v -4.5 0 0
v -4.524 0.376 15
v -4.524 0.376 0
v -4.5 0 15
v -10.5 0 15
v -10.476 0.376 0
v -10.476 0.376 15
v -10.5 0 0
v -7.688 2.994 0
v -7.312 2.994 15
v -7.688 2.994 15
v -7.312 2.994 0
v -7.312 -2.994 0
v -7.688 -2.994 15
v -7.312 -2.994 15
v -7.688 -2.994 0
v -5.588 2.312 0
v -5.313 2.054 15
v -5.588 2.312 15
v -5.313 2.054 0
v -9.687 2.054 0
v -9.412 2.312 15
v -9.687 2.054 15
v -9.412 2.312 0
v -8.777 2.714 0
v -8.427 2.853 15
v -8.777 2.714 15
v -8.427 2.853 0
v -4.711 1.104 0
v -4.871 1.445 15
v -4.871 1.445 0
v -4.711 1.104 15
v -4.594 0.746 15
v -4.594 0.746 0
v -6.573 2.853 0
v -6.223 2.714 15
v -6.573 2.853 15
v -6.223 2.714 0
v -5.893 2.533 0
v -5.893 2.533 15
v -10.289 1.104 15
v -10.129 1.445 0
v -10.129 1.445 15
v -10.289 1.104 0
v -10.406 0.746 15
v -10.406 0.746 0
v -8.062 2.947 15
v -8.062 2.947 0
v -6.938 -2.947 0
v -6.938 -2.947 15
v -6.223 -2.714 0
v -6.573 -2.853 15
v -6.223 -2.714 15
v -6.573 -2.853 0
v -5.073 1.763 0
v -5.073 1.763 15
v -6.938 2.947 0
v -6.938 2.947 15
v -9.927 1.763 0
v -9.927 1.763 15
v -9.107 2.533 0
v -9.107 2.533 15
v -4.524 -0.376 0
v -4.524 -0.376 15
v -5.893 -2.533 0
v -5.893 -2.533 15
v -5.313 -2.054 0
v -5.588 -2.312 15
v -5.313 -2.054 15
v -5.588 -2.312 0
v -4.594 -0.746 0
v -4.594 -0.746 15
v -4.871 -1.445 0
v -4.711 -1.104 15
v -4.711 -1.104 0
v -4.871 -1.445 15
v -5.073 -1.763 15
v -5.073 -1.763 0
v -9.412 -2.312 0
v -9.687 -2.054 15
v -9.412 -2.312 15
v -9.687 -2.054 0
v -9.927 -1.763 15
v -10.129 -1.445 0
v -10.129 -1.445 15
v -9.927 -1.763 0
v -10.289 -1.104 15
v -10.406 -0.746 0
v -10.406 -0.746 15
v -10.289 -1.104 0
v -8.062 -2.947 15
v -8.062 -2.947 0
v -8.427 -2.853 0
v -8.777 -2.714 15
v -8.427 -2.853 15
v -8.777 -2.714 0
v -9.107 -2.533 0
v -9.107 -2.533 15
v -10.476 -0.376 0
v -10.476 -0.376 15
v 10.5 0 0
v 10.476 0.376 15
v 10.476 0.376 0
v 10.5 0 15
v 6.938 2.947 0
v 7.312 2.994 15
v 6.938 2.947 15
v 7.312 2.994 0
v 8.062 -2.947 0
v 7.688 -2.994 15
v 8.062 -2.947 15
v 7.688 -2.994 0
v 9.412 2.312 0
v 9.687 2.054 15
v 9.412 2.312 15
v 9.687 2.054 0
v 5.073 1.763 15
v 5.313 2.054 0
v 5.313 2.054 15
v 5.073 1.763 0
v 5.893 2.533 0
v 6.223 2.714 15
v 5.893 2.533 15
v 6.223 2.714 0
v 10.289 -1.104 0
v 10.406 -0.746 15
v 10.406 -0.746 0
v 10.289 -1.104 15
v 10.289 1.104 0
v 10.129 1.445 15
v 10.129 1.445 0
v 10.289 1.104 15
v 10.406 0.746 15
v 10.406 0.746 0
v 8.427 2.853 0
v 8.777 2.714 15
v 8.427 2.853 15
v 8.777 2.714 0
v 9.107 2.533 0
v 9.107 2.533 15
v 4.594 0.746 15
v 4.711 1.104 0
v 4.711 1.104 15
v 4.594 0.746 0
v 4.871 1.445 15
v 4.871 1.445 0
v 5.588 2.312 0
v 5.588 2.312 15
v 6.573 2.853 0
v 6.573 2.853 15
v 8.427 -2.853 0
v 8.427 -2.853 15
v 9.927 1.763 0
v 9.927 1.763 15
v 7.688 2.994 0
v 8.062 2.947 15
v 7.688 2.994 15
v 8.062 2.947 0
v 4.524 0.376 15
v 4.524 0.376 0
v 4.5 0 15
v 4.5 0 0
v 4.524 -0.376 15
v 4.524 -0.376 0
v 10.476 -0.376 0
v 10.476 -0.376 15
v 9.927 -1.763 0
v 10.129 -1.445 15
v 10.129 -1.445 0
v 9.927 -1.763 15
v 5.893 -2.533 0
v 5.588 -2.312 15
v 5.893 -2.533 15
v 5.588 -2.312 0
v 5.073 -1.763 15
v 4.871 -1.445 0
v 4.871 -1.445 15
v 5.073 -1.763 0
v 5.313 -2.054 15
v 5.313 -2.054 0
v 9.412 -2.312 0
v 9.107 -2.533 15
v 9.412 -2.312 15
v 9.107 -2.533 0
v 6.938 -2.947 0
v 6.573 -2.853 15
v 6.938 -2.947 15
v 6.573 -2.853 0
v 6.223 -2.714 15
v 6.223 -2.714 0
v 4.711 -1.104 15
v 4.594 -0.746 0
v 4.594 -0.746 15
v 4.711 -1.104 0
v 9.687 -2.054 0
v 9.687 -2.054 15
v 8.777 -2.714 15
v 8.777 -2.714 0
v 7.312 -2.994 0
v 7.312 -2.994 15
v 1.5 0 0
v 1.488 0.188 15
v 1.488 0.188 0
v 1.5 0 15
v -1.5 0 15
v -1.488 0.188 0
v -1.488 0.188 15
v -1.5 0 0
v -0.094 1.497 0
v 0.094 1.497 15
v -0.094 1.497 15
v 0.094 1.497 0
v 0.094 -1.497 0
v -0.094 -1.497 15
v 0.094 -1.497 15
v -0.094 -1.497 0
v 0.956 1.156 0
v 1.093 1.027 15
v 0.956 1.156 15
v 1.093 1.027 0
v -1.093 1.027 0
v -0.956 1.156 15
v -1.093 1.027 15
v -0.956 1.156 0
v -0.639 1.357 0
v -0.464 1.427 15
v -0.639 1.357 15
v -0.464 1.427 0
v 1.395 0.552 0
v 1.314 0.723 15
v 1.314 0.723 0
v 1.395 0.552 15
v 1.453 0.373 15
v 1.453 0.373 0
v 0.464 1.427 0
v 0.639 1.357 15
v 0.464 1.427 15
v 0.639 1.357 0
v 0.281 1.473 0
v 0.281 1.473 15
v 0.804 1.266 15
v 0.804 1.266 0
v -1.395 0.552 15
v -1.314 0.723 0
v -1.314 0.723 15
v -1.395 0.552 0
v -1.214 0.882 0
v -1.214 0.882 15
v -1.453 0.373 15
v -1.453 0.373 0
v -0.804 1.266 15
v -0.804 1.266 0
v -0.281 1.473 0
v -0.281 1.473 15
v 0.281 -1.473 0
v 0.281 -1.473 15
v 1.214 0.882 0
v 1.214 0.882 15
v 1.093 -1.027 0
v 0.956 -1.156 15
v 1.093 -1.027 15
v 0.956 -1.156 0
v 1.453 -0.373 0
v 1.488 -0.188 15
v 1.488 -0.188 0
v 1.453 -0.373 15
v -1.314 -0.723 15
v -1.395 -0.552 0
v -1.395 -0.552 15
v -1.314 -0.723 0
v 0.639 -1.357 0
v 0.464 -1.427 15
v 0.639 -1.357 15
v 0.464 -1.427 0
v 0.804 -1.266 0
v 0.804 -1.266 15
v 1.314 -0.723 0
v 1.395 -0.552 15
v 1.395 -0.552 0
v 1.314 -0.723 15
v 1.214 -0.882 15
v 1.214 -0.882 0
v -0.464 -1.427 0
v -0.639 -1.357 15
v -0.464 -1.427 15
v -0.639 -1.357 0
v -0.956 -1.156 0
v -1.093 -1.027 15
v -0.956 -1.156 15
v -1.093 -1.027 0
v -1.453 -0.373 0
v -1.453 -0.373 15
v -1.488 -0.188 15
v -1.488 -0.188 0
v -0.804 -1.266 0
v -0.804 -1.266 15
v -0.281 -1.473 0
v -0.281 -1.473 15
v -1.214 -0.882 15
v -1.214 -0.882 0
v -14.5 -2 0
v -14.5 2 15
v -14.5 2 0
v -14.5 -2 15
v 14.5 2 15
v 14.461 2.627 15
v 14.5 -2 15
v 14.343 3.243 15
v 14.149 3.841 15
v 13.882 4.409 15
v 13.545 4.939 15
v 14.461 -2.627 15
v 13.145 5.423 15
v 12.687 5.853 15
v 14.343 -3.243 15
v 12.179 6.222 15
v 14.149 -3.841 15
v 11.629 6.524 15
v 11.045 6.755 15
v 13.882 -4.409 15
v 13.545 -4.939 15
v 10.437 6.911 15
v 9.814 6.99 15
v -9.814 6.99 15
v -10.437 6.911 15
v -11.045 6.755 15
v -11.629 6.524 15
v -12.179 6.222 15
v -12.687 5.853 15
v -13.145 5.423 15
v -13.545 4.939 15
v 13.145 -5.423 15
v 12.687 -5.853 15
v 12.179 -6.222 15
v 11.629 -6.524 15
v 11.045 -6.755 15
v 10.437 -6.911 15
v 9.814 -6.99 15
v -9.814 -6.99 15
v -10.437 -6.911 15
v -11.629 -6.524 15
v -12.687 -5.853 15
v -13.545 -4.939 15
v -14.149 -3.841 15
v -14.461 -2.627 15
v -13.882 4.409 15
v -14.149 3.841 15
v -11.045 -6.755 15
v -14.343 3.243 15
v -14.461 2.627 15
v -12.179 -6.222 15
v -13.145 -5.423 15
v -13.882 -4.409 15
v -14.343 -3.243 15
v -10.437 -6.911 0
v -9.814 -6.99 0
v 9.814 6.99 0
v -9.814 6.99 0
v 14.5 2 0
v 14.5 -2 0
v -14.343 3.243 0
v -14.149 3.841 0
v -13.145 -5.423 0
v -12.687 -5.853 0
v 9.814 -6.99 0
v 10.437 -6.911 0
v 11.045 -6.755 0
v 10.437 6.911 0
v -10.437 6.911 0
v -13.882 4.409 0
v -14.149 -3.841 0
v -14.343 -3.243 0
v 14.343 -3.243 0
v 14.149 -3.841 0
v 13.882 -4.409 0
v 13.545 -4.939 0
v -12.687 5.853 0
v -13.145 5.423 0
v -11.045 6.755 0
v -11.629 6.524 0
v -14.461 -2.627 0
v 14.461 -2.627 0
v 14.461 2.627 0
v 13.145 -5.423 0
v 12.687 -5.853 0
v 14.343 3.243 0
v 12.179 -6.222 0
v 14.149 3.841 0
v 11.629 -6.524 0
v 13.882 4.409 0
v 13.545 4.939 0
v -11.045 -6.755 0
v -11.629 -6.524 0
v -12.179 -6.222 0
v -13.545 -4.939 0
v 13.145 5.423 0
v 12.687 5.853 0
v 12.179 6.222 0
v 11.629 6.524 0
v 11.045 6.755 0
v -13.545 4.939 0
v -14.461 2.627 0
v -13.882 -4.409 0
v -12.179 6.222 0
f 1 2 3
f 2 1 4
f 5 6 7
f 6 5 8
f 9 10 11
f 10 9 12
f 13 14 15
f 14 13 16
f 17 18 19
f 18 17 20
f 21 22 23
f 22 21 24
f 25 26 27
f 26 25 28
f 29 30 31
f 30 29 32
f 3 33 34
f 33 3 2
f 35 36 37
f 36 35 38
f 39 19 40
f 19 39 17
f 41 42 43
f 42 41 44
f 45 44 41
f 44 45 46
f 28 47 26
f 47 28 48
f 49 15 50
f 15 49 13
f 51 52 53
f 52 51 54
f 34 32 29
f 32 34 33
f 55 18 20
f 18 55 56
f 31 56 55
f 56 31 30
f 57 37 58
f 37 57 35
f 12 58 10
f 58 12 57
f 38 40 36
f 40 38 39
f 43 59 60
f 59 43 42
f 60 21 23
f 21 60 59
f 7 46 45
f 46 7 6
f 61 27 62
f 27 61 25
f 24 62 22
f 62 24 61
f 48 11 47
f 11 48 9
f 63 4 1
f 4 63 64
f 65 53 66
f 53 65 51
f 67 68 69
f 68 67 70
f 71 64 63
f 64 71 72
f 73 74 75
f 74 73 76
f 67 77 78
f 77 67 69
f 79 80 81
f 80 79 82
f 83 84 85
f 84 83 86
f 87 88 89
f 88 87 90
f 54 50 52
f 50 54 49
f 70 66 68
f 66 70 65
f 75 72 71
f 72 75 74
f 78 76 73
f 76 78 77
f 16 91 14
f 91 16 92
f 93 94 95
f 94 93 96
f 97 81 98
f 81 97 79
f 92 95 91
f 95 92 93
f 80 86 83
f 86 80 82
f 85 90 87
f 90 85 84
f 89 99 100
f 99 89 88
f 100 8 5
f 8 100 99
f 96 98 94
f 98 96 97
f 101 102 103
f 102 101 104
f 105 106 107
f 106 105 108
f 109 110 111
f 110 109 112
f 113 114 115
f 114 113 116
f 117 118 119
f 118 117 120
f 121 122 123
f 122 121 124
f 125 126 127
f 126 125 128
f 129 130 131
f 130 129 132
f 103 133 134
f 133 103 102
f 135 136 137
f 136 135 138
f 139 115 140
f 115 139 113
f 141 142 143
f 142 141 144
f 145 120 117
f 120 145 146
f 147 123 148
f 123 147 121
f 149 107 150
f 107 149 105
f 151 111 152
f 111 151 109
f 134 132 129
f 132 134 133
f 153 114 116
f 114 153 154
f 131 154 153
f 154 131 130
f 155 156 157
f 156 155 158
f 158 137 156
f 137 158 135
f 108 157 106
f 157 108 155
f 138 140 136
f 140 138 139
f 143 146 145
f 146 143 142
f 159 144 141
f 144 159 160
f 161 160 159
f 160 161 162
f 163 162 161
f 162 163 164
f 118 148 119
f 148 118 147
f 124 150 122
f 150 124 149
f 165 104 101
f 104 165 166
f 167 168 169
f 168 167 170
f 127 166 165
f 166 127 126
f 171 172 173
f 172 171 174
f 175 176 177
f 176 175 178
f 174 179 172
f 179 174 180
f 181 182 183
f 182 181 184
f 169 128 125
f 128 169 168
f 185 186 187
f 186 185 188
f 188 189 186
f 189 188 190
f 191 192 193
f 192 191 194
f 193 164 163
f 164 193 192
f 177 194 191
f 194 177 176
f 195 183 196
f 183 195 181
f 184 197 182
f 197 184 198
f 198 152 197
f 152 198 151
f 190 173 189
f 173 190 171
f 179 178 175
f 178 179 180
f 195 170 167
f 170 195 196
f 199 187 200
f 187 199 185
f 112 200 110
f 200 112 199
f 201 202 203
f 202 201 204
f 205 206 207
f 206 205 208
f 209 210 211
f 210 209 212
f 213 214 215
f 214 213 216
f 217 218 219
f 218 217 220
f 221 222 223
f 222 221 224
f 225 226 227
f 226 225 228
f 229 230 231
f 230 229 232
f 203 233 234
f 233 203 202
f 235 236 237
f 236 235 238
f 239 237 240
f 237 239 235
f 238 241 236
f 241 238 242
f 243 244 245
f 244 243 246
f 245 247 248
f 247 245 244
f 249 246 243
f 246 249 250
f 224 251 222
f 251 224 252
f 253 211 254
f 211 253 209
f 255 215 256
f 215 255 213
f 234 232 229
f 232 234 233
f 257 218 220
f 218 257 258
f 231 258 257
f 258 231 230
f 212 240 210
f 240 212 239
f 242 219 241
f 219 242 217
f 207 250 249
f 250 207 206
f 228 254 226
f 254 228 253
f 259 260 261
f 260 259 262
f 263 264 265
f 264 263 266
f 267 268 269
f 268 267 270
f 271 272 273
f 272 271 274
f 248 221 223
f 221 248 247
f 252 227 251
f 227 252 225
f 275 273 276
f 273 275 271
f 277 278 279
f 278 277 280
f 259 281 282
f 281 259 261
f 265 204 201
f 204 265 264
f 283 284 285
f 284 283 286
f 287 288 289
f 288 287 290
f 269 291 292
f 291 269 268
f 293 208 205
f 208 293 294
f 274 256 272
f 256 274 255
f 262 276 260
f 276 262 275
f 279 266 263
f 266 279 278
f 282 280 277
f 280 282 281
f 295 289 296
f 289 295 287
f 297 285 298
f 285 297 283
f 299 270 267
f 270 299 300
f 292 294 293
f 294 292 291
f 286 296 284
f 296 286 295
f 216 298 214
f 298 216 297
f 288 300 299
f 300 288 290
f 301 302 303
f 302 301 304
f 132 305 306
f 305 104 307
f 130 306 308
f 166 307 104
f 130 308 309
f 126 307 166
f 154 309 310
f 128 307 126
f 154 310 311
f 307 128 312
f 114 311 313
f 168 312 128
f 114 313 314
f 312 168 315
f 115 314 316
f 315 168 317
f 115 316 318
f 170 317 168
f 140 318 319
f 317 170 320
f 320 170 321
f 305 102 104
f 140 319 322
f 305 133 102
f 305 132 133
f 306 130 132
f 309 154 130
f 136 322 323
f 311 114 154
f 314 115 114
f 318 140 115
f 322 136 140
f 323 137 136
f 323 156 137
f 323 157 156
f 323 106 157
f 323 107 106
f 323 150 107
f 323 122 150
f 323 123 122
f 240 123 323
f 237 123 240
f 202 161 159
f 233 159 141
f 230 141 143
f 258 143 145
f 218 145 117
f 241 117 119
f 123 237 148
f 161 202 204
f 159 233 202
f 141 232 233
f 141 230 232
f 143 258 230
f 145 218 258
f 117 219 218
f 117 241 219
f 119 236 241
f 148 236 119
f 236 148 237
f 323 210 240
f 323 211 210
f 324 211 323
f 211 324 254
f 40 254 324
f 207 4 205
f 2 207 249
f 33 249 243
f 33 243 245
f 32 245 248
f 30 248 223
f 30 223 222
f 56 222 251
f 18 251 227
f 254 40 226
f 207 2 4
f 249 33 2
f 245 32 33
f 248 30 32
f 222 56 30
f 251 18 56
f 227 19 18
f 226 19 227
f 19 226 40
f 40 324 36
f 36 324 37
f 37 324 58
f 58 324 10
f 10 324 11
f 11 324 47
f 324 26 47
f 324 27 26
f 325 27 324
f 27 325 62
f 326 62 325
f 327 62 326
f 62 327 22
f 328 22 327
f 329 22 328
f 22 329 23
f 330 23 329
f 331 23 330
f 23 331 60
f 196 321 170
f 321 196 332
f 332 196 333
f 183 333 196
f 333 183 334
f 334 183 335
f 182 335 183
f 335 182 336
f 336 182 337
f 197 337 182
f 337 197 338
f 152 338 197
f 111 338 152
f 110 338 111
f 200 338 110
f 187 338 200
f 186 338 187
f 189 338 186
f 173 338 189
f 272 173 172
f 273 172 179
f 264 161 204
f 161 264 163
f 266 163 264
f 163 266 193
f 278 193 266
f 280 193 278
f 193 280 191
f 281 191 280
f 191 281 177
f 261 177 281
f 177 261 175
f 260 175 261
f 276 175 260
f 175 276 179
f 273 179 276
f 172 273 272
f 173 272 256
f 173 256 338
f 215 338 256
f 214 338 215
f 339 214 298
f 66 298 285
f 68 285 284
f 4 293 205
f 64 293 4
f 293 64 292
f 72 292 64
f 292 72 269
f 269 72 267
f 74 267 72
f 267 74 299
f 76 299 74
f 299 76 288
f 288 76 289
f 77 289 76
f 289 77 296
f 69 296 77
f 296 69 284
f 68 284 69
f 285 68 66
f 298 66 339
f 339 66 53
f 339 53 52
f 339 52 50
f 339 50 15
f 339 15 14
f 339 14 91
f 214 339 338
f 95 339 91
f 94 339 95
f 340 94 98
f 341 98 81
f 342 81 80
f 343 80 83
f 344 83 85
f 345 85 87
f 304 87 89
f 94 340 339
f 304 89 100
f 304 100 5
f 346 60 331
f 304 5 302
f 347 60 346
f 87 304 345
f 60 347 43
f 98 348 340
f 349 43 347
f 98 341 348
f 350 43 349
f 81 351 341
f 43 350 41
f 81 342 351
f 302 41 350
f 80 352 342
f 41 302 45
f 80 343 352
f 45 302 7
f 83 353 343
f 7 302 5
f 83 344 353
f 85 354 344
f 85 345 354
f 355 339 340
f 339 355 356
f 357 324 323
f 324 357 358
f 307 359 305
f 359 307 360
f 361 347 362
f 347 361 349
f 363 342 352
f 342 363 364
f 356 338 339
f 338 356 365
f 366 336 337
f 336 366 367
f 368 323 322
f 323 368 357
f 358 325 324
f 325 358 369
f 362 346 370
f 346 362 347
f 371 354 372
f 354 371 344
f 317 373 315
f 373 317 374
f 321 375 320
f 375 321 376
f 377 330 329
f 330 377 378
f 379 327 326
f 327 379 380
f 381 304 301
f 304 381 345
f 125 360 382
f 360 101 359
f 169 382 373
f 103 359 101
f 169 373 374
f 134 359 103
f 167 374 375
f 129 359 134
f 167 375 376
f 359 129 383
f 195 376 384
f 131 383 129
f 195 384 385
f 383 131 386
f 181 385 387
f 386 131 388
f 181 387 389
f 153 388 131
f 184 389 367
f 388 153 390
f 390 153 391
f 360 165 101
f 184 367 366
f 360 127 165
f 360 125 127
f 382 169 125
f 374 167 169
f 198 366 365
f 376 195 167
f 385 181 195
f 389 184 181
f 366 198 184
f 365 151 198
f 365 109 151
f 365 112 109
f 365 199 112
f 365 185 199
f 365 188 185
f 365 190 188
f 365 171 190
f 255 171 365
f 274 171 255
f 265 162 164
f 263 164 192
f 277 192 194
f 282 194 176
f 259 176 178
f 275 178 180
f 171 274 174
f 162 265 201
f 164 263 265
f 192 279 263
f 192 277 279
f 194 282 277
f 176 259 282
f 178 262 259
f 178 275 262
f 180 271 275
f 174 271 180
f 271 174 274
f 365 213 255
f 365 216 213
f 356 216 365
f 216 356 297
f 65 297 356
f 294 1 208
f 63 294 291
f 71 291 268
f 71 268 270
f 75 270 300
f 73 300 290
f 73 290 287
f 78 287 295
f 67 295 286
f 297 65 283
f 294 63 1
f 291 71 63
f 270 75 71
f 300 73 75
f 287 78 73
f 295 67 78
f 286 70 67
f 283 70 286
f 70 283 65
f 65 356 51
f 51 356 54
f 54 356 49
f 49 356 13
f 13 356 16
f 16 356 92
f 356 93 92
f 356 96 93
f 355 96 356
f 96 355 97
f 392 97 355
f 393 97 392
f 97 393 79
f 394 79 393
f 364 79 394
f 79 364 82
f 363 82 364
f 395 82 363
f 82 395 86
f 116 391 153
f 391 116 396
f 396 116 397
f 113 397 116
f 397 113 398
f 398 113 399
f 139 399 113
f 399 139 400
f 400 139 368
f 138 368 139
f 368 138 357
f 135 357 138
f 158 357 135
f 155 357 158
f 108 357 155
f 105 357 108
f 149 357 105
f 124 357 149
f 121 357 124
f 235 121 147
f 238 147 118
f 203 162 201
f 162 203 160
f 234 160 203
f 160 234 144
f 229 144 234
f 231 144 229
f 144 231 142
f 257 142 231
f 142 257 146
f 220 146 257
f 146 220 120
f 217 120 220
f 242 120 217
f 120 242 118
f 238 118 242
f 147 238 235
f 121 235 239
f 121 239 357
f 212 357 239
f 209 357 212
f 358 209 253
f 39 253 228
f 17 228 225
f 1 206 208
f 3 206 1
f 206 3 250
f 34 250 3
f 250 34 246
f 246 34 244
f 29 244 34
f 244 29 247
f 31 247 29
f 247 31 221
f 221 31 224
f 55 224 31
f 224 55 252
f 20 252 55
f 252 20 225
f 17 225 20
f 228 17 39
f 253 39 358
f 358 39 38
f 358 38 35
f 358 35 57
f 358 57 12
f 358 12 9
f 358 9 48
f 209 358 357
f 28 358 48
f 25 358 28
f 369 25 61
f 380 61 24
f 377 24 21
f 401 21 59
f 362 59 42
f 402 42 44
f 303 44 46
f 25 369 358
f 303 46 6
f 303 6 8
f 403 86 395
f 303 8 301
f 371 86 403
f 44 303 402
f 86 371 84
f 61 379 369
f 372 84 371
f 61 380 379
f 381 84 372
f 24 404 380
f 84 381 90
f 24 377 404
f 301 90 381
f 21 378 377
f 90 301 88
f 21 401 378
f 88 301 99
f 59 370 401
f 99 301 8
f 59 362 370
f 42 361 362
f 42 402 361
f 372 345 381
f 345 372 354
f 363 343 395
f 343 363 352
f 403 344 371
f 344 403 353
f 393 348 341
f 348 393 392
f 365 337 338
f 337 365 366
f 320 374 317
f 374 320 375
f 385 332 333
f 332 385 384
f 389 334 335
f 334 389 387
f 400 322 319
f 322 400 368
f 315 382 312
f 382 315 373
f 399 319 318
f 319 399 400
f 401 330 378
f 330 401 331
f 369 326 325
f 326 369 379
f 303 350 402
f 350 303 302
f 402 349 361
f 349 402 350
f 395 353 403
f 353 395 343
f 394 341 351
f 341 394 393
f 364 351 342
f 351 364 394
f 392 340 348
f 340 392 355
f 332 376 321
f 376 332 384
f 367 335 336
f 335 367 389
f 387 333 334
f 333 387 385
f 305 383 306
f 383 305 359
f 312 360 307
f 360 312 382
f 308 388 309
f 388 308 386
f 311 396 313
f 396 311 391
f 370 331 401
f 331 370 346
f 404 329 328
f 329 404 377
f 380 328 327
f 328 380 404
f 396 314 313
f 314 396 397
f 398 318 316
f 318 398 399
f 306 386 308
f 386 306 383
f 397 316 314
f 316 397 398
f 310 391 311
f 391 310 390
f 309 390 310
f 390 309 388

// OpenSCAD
$fn = 50;


difference() {
	union() {
		*color(alpha = 1.0000000000, c = "gray") {
			translate(v = [0, 7, 0]) {
				linear_extrude(height = 1) {
					text(font = "Arial:style=Bold", halign = "center", size = 4.5000000000, text = "COMMENT plate main", valign = "center");
				}
			}
		}
		*color(alpha = 1.0000000000, c = "gray") {
			translate(v = [0, 14, 0]) {
				linear_extrude(height = 1) {
					text(font = "Arial:style=Bold", halign = "center", size = 4.5000000000, text = "COMMENT description oobb_plate_shape_p_type_15_depth_2_width_1_height_15_thickness_true_both_holes", valign = "center");
				}
			}
		}
		hull() {
			translate(v = [-9.5000000000, 2.0000000000, 0]) {
				cylinder(h = 15, r = 5);
			}
			translate(v = [9.5000000000, 2.0000000000, 0]) {
				cylinder(h = 15, r = 5);
			}
			translate(v = [-9.5000000000, -2.0000000000, 0]) {
				cylinder(h = 15, r = 5);
			}
			translate(v = [9.5000000000, -2.0000000000, 0]) {
				cylinder(h = 15, r = 5);
			}
		}
	}
	union() {
		*color(alpha = 1.0000000000, c = "gray") {
			translate(v = [0, 7, 0]) {
				linear_extrude(height = 1) {
					text(font = "Arial:style=Bold", halign = "center", size = 4.5000000000, text = "COMMENT holes main", valign = "center");
				}
			}
		}
		*color(alpha = 1.0000000000, c = "gray") {
			translate(v = [0, 14, 0]) {
				linear_extrude(height = 1) {
					text(font = "Arial:style=Bold", halign = "center", size = 4.5000000000, text = "COMMENT description oobb_holes_shape_n_type_2_width_1_height_15_thickness_true_both_holes", valign = "center");
				}
			}
		}
		translate(v = [-7.5000000000, 0.0000000000, 0]) {
			translate(v = [0, 0, -50]) {
				cylinder(h = 100, r = 3.0000000000);
			}
		}
		translate(v = [7.5000000000, 0.0000000000, 0]) {
			translate(v = [0, 0, -50]) {
				cylinder(h = 100, r = 3.0000000000);
			}
		}
		translate(v = [-7.5000000000, 0.0000000000, 0]) {
			translate(v = [0, 0, -50]) {
				cylinder(h = 100, r = 1.5000000000);
			}
		}
		translate(v = [0, 0, -50]) {
			cylinder(h = 100, r = 1.5000000000);
		}
		translate(v = [7.5000000000, 0.0000000000, 0]) {
			translate(v = [0, 0, -50]) {
				cylinder(h = 100, r = 1.5000000000);
			}
		}
	}
}
